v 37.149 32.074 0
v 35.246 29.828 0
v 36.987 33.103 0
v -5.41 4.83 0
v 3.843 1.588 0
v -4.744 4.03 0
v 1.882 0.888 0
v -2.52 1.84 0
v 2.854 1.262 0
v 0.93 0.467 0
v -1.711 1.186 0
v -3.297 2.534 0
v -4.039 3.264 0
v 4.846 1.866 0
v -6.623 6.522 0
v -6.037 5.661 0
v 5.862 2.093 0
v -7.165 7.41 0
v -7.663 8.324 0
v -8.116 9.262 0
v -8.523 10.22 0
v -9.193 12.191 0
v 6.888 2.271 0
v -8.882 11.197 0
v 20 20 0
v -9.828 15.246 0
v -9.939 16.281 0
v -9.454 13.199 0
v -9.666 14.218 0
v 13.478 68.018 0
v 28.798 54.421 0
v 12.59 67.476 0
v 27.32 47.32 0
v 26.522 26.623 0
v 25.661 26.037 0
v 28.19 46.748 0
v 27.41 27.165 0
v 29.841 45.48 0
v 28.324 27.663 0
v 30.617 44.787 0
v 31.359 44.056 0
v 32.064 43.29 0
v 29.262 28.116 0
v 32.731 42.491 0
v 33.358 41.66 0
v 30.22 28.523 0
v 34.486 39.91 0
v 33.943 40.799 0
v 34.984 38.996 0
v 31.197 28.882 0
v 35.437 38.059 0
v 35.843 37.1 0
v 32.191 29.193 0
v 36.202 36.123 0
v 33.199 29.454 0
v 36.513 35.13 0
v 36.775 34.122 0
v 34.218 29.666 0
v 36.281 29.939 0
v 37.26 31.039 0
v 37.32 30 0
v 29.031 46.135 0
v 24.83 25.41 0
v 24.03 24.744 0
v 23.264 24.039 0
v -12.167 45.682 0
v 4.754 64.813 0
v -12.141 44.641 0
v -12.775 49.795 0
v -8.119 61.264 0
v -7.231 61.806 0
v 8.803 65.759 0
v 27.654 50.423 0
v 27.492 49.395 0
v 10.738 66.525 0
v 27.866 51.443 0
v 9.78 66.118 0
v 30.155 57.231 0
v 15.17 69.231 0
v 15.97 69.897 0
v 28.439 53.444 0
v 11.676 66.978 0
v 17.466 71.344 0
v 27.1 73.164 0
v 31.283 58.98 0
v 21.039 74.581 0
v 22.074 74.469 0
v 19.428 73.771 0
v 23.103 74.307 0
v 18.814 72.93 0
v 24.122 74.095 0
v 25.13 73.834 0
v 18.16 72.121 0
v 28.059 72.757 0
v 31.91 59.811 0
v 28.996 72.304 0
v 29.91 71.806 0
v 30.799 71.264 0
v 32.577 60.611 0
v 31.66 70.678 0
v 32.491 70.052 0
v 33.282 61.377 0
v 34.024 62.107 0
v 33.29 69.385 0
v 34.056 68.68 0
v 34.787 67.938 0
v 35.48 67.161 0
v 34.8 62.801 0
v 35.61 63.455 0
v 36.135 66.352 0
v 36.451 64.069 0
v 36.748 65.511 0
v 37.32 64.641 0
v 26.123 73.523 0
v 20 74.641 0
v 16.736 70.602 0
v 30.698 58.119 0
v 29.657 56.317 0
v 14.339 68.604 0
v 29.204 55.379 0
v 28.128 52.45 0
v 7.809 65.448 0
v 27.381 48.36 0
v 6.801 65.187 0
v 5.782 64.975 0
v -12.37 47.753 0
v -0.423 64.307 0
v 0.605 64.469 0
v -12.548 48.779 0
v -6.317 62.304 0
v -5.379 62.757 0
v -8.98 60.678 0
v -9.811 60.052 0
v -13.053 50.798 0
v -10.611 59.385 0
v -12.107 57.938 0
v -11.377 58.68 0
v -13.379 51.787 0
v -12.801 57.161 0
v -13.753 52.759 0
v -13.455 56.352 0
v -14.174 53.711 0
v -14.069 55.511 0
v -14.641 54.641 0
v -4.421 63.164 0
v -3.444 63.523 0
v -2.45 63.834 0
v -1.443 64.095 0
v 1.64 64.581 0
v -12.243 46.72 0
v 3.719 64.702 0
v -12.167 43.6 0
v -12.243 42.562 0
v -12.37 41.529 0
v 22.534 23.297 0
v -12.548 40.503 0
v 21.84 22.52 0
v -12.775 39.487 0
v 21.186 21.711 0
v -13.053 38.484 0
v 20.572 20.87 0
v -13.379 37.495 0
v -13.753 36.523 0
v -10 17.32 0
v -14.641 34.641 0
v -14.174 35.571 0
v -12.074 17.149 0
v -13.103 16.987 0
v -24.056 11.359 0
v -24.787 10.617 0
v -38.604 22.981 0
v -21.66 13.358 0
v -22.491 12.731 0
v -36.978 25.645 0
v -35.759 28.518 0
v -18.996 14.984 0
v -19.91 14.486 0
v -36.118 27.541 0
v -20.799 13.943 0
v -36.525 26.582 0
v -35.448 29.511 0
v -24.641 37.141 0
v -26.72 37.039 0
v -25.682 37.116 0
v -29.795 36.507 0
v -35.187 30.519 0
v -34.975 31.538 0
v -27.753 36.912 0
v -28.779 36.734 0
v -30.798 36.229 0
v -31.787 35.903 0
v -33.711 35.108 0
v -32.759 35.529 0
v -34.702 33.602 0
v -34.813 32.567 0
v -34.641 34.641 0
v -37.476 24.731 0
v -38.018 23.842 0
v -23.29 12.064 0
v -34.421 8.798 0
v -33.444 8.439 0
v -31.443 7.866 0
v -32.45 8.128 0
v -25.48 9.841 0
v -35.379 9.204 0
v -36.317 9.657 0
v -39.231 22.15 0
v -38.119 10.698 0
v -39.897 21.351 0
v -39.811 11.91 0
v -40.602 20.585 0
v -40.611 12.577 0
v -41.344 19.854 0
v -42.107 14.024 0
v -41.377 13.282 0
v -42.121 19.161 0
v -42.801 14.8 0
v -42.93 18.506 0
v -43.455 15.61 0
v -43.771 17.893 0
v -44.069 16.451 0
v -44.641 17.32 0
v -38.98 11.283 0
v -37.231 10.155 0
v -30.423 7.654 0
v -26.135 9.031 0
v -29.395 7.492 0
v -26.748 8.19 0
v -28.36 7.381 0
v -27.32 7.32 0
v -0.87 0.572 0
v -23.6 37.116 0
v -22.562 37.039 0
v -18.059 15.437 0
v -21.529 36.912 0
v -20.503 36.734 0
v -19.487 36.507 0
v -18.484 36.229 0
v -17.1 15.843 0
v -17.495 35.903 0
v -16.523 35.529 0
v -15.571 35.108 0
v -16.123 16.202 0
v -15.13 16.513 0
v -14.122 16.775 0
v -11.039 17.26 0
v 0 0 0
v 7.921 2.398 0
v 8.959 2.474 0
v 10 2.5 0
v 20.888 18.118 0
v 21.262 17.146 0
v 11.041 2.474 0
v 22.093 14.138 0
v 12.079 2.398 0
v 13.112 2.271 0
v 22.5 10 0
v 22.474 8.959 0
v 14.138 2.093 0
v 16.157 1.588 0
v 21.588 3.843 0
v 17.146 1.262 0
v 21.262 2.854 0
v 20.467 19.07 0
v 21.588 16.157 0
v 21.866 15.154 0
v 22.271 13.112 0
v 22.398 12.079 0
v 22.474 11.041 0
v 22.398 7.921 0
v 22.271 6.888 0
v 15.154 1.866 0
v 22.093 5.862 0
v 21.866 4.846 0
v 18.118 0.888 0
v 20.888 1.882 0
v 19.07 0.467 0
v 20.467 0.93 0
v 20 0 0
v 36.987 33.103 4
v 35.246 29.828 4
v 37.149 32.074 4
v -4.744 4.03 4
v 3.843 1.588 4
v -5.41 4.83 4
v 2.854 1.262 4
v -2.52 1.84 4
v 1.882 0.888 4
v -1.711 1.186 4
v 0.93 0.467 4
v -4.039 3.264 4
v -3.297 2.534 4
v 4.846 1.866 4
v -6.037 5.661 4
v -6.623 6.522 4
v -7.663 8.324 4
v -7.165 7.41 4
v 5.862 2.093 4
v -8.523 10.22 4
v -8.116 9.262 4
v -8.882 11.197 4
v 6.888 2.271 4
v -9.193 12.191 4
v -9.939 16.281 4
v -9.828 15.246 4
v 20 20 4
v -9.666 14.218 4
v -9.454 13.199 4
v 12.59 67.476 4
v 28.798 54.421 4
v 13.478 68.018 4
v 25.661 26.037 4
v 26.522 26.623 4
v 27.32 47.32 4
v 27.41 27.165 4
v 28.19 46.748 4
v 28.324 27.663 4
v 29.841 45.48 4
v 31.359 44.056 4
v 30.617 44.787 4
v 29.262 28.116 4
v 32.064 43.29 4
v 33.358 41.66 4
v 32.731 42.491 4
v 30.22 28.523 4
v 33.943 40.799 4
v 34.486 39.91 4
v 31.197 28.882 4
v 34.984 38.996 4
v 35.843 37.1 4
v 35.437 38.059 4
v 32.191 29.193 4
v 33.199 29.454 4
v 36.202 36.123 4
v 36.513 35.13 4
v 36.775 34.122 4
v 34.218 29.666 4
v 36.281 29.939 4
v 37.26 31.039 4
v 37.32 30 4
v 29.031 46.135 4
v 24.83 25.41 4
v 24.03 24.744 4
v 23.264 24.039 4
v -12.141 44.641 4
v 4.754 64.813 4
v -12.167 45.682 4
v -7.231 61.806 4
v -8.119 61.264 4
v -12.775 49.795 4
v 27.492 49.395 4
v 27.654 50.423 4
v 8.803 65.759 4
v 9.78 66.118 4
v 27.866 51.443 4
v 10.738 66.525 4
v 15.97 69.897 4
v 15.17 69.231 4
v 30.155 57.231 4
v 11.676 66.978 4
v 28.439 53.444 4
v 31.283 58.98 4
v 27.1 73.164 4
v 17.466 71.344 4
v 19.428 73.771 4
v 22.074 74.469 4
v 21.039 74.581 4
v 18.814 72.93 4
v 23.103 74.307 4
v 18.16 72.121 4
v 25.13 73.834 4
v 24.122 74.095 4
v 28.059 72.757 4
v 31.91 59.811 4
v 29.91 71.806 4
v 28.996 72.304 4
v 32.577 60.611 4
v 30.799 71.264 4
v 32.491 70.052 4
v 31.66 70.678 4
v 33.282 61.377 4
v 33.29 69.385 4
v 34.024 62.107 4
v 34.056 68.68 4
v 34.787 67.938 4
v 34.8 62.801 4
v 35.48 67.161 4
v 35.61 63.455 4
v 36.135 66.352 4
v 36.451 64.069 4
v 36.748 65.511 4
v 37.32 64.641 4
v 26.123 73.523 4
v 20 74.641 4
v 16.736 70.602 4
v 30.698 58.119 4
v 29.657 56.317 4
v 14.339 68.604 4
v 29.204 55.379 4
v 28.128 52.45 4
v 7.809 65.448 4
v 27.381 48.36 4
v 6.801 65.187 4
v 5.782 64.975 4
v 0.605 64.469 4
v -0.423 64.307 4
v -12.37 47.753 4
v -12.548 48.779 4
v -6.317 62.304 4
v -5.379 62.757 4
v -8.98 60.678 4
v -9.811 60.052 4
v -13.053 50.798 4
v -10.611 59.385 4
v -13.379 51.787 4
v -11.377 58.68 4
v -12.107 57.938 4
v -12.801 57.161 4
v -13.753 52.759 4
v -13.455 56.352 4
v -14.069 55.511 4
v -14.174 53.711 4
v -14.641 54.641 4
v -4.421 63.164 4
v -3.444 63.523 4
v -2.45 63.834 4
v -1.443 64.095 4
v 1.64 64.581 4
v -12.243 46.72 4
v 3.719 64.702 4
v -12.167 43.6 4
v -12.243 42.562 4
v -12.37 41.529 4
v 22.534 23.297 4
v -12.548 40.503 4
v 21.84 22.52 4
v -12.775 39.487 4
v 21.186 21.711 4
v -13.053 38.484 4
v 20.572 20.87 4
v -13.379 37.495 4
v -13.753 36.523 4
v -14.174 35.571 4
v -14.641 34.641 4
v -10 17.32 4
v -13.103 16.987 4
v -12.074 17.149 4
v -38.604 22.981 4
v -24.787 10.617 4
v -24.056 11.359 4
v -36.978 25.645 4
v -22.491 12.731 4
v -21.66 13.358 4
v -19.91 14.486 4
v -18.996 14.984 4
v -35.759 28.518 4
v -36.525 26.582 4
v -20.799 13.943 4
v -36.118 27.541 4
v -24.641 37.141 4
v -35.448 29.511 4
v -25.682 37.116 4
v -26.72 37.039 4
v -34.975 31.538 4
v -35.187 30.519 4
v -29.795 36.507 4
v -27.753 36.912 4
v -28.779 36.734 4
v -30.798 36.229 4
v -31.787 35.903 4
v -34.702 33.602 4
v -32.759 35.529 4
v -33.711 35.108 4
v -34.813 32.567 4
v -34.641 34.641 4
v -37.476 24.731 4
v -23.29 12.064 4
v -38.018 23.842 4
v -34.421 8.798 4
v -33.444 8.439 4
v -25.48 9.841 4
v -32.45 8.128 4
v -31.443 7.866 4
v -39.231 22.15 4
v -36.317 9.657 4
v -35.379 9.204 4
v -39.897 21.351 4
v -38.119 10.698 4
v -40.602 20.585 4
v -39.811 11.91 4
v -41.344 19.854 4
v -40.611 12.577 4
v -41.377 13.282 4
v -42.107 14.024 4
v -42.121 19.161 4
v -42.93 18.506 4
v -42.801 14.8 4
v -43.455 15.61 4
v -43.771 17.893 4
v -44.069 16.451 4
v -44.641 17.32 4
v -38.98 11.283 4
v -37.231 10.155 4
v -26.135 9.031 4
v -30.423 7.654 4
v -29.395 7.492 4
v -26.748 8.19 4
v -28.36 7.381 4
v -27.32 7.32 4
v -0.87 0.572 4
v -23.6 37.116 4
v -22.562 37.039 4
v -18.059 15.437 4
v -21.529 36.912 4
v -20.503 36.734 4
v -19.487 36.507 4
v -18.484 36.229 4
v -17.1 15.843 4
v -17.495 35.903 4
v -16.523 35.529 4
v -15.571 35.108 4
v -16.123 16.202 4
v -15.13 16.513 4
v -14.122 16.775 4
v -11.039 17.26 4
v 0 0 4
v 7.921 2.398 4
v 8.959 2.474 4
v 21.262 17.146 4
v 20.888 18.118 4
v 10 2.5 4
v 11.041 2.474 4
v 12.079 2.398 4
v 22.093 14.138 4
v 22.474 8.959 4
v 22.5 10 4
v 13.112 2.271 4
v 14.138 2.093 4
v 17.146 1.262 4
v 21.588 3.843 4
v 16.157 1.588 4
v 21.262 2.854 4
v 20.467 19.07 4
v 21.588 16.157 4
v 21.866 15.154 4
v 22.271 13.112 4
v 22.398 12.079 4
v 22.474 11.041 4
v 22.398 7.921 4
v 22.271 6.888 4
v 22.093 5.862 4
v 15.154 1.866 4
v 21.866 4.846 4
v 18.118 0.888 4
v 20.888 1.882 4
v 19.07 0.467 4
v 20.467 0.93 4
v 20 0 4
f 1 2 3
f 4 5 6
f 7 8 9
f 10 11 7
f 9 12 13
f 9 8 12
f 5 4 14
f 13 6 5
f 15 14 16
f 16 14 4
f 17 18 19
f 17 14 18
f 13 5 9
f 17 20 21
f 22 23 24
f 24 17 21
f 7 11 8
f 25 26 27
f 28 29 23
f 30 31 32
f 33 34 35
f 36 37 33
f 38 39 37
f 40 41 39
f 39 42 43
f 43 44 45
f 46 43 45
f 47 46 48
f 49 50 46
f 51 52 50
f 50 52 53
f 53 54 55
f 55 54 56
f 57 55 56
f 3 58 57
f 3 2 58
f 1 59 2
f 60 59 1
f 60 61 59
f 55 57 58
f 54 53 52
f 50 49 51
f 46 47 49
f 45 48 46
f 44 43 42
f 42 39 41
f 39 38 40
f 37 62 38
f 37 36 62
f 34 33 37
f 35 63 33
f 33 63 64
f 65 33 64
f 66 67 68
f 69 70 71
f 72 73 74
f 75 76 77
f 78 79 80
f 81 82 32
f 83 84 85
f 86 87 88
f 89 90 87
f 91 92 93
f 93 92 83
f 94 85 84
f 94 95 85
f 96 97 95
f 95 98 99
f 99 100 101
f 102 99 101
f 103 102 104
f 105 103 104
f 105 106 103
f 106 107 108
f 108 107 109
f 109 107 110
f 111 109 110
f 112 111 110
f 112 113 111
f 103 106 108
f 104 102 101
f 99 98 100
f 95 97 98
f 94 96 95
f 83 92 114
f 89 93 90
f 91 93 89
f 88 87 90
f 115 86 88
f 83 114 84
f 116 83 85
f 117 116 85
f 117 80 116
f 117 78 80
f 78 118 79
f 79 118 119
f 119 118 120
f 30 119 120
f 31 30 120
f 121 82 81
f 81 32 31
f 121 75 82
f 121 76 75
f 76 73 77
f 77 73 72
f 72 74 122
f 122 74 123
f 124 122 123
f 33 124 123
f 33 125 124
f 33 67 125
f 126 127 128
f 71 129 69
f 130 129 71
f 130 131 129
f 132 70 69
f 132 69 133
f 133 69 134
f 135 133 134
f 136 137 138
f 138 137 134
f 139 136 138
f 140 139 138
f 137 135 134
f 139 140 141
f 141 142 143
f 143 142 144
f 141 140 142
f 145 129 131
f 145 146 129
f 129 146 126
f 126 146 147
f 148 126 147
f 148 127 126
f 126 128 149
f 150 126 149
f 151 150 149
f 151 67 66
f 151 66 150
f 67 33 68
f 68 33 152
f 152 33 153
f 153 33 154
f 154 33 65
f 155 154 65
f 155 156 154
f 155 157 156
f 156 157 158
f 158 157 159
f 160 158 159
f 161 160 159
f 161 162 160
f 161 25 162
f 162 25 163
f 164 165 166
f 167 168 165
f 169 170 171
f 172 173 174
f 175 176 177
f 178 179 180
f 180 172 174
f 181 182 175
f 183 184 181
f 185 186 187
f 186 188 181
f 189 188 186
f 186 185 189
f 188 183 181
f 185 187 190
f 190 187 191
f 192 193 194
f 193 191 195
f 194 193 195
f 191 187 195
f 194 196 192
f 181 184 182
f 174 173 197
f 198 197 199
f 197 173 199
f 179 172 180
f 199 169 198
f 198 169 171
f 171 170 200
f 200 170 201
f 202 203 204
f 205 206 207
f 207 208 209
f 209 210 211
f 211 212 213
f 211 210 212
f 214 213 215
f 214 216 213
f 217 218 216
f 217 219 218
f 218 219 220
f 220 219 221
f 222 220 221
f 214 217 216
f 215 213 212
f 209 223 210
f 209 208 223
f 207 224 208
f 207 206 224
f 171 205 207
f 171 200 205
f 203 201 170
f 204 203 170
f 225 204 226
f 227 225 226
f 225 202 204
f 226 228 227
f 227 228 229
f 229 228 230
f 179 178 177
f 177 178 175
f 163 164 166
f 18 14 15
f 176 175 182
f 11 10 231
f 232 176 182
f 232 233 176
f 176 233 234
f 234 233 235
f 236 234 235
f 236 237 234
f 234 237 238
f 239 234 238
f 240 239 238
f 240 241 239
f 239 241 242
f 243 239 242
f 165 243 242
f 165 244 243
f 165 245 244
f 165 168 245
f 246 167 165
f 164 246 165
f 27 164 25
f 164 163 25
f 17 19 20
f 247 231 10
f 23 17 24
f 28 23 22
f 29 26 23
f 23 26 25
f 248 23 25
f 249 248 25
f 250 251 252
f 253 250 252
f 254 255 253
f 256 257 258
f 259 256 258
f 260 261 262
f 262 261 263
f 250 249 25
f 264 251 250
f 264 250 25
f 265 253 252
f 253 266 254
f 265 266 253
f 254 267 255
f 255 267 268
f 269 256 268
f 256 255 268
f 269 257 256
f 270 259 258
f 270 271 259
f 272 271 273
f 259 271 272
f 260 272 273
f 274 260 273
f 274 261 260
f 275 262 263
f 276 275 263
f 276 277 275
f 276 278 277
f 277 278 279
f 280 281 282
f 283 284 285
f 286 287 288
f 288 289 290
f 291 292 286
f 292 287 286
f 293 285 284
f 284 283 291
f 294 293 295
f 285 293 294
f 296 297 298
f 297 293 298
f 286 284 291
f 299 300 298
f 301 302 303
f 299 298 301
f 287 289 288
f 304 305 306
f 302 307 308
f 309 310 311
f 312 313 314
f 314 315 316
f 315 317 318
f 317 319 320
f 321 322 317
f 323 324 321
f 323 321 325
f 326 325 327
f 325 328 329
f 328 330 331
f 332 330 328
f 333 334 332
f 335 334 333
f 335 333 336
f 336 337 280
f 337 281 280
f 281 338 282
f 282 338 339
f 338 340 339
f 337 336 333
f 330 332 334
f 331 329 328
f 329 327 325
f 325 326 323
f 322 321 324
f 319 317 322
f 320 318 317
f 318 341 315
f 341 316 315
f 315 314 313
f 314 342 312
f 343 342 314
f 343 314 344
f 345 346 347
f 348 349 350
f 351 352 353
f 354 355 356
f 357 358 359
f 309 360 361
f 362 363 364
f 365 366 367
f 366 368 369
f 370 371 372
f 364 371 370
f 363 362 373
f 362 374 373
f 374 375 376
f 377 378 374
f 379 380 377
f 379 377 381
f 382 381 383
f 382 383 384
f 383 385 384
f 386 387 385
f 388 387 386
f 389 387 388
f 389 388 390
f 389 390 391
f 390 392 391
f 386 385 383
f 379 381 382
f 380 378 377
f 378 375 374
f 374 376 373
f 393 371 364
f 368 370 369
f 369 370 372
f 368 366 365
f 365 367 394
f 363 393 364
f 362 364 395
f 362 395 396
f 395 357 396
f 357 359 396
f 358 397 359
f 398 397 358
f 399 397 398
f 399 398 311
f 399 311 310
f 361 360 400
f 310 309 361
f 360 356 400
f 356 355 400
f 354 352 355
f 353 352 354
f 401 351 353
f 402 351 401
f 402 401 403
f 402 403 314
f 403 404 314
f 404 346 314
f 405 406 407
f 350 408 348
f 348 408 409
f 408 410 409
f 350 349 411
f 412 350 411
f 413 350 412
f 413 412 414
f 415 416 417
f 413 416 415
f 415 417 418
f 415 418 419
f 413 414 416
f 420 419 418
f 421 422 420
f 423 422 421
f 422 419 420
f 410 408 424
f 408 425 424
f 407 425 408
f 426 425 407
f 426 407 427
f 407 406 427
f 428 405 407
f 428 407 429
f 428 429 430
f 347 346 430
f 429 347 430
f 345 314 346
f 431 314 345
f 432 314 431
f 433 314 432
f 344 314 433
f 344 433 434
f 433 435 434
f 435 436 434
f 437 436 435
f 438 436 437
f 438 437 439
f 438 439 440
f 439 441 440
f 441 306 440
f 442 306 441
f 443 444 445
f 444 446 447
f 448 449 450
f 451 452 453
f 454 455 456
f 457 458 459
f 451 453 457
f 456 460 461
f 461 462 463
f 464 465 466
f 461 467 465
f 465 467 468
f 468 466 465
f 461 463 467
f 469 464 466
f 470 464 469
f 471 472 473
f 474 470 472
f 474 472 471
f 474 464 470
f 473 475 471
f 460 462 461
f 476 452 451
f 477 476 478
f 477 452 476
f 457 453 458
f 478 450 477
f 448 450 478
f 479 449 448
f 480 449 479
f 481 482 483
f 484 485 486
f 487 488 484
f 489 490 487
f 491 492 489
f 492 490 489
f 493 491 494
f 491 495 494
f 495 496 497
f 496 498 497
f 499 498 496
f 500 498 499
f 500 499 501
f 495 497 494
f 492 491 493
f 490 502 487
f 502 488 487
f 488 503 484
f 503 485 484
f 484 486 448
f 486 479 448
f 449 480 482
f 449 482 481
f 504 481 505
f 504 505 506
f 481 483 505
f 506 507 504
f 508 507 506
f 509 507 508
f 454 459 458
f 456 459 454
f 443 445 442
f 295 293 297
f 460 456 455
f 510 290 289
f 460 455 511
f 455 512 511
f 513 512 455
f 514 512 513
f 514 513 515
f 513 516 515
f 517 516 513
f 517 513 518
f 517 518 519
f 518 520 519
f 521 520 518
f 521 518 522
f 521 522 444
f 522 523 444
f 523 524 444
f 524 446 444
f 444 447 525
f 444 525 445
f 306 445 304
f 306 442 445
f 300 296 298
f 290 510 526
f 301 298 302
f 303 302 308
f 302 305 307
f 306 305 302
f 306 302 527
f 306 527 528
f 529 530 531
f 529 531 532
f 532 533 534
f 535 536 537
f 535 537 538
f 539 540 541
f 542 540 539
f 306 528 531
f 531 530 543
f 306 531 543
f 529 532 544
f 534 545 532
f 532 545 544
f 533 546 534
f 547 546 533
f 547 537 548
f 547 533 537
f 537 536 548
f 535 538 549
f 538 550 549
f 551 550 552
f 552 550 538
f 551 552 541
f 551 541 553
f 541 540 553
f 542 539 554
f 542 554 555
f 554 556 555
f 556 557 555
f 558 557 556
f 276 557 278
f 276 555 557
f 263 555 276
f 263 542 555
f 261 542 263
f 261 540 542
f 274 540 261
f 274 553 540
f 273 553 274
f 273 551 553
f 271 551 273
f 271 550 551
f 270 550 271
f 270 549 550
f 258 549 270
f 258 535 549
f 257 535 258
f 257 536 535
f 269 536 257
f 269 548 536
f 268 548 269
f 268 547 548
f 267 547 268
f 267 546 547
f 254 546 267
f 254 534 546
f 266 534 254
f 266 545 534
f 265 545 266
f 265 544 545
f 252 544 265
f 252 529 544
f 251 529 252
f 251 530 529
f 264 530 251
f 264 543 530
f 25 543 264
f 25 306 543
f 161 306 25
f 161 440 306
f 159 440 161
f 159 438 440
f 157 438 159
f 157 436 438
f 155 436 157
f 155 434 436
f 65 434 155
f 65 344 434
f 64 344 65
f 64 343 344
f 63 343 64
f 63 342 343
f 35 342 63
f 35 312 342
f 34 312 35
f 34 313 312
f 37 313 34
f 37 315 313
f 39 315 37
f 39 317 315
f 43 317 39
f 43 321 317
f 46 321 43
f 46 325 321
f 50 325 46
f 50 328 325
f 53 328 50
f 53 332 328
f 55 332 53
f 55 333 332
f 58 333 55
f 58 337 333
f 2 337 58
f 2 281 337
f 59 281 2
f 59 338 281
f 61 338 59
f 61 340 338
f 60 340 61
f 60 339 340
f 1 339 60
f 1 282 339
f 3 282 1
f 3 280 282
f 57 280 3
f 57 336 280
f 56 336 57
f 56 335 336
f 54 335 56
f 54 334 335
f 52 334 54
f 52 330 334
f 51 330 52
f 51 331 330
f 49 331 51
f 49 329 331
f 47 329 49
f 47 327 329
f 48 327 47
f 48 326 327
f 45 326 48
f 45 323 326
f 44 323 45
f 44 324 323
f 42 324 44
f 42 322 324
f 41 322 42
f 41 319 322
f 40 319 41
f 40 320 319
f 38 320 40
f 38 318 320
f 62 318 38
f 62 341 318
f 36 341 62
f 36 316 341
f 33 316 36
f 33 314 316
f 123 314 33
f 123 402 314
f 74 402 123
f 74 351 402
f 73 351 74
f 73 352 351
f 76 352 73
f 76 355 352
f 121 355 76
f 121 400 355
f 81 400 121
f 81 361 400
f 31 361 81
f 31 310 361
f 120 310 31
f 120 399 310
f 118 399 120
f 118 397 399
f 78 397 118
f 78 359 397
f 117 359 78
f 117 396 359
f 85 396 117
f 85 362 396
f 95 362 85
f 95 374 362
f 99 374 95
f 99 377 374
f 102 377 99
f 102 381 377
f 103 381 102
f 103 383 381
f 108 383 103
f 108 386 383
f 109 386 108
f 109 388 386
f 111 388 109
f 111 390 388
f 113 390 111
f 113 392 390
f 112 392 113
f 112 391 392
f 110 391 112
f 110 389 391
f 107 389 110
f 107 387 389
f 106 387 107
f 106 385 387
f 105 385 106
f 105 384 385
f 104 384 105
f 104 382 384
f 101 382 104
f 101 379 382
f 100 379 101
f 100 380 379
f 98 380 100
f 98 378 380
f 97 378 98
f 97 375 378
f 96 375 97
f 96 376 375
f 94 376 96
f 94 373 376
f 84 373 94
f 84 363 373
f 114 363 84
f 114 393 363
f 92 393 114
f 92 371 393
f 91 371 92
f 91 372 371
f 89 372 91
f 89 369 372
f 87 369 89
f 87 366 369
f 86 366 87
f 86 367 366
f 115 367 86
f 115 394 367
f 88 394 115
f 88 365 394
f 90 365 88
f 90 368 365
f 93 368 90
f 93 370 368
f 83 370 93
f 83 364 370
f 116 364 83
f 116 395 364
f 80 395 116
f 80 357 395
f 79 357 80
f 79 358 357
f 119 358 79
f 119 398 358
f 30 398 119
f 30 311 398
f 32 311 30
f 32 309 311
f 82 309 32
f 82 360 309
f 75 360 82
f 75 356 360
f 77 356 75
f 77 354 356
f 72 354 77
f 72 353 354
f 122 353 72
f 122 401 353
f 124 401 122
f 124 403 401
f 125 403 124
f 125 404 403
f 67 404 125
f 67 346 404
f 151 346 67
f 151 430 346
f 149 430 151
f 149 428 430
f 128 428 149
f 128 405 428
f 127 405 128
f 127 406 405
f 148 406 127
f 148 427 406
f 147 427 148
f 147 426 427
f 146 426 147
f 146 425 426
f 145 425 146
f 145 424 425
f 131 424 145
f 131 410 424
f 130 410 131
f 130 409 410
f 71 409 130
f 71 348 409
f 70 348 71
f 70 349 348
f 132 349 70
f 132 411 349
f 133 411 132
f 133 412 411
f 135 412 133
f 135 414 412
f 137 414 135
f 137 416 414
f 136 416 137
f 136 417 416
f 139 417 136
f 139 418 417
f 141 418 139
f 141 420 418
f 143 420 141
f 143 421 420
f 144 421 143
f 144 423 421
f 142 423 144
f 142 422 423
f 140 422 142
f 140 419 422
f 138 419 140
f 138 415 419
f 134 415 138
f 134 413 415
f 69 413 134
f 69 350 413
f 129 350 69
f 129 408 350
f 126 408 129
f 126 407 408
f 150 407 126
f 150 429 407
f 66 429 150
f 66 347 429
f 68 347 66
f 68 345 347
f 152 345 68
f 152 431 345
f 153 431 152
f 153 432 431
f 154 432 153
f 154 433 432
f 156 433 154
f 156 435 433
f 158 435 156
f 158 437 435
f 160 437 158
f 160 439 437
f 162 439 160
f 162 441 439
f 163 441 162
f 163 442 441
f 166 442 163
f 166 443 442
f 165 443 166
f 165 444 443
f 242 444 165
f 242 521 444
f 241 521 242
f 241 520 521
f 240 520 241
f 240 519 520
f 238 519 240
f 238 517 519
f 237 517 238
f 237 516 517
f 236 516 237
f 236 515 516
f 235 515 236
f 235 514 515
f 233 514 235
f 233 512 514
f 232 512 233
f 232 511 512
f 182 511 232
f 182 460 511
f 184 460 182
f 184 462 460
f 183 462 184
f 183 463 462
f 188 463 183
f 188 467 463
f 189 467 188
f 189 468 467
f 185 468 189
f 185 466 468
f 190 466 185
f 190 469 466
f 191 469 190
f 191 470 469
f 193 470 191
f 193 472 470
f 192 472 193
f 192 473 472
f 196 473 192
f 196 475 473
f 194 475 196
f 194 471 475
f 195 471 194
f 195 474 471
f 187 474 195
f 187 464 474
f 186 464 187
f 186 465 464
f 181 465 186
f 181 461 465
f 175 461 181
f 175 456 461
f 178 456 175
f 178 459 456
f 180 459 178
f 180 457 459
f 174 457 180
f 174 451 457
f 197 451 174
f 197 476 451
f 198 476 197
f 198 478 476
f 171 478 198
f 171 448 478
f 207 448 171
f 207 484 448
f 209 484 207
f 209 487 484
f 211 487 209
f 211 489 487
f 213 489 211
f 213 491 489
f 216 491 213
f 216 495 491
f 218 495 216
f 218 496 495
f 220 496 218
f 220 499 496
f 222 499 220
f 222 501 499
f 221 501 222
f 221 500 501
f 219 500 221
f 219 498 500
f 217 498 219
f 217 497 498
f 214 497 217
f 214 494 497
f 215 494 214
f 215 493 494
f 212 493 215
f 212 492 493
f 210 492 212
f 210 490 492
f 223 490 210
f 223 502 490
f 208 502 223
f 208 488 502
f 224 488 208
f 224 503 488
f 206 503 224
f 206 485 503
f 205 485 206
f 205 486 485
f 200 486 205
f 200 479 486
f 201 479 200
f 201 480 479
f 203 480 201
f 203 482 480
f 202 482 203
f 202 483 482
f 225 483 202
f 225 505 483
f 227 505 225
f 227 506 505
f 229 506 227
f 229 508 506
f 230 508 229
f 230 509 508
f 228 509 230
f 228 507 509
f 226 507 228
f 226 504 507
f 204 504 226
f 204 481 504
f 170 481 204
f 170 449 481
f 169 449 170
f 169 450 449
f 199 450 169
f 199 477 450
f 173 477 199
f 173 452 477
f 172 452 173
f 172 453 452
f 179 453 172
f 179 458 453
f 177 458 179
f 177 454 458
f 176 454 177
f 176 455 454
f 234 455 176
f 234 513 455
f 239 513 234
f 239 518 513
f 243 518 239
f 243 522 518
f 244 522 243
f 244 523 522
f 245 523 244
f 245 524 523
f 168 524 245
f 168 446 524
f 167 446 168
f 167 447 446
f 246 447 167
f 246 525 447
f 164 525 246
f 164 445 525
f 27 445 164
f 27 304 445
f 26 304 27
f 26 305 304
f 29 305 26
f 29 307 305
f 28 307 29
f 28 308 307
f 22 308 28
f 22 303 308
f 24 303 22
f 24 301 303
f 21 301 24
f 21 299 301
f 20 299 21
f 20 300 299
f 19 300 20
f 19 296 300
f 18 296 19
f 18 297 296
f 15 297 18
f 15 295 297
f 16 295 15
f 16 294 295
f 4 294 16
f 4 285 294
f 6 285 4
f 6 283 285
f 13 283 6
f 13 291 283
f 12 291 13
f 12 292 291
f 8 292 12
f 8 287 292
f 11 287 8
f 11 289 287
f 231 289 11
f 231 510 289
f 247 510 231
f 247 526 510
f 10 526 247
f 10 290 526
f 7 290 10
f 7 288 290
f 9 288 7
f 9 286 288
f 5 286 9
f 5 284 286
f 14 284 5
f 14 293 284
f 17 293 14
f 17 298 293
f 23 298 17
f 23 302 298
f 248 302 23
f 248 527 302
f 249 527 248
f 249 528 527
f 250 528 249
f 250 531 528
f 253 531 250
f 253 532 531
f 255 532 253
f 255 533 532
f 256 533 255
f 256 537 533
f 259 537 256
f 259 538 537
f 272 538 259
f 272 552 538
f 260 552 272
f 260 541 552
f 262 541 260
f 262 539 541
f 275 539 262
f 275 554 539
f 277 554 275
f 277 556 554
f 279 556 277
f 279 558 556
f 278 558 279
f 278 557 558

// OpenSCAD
// Build the aperidic Spectre Tile
SIZE = 20;

/* [Hidden] */
// Include BOSL2 first so I can use the rot function in einstein (not overridden)
include<BOSL2/std.scad> 

no_side_effects = true;
include<einstein.scad>

// Close the polygon to get the basis of the Spectre
// the Tile(1, 1) tile.
points = SIZE * [each tile_v(1, 1), [0, 0]];

function offset_mid(p1, p2, right) = (p1 + p2) / 2 + (p2 - p1) / 8 * rot(right?-90:90);

function curvify(v) = [for (i=[0:len(v)-2]) each
    arc(20, points=[v[i], offset_mid(v[i], v[i+1], i % 2 != 0), v[i+1]], endpoint=false)];

linear_extrude(height=4)
  polygon(curvify(points), convexity=2);
